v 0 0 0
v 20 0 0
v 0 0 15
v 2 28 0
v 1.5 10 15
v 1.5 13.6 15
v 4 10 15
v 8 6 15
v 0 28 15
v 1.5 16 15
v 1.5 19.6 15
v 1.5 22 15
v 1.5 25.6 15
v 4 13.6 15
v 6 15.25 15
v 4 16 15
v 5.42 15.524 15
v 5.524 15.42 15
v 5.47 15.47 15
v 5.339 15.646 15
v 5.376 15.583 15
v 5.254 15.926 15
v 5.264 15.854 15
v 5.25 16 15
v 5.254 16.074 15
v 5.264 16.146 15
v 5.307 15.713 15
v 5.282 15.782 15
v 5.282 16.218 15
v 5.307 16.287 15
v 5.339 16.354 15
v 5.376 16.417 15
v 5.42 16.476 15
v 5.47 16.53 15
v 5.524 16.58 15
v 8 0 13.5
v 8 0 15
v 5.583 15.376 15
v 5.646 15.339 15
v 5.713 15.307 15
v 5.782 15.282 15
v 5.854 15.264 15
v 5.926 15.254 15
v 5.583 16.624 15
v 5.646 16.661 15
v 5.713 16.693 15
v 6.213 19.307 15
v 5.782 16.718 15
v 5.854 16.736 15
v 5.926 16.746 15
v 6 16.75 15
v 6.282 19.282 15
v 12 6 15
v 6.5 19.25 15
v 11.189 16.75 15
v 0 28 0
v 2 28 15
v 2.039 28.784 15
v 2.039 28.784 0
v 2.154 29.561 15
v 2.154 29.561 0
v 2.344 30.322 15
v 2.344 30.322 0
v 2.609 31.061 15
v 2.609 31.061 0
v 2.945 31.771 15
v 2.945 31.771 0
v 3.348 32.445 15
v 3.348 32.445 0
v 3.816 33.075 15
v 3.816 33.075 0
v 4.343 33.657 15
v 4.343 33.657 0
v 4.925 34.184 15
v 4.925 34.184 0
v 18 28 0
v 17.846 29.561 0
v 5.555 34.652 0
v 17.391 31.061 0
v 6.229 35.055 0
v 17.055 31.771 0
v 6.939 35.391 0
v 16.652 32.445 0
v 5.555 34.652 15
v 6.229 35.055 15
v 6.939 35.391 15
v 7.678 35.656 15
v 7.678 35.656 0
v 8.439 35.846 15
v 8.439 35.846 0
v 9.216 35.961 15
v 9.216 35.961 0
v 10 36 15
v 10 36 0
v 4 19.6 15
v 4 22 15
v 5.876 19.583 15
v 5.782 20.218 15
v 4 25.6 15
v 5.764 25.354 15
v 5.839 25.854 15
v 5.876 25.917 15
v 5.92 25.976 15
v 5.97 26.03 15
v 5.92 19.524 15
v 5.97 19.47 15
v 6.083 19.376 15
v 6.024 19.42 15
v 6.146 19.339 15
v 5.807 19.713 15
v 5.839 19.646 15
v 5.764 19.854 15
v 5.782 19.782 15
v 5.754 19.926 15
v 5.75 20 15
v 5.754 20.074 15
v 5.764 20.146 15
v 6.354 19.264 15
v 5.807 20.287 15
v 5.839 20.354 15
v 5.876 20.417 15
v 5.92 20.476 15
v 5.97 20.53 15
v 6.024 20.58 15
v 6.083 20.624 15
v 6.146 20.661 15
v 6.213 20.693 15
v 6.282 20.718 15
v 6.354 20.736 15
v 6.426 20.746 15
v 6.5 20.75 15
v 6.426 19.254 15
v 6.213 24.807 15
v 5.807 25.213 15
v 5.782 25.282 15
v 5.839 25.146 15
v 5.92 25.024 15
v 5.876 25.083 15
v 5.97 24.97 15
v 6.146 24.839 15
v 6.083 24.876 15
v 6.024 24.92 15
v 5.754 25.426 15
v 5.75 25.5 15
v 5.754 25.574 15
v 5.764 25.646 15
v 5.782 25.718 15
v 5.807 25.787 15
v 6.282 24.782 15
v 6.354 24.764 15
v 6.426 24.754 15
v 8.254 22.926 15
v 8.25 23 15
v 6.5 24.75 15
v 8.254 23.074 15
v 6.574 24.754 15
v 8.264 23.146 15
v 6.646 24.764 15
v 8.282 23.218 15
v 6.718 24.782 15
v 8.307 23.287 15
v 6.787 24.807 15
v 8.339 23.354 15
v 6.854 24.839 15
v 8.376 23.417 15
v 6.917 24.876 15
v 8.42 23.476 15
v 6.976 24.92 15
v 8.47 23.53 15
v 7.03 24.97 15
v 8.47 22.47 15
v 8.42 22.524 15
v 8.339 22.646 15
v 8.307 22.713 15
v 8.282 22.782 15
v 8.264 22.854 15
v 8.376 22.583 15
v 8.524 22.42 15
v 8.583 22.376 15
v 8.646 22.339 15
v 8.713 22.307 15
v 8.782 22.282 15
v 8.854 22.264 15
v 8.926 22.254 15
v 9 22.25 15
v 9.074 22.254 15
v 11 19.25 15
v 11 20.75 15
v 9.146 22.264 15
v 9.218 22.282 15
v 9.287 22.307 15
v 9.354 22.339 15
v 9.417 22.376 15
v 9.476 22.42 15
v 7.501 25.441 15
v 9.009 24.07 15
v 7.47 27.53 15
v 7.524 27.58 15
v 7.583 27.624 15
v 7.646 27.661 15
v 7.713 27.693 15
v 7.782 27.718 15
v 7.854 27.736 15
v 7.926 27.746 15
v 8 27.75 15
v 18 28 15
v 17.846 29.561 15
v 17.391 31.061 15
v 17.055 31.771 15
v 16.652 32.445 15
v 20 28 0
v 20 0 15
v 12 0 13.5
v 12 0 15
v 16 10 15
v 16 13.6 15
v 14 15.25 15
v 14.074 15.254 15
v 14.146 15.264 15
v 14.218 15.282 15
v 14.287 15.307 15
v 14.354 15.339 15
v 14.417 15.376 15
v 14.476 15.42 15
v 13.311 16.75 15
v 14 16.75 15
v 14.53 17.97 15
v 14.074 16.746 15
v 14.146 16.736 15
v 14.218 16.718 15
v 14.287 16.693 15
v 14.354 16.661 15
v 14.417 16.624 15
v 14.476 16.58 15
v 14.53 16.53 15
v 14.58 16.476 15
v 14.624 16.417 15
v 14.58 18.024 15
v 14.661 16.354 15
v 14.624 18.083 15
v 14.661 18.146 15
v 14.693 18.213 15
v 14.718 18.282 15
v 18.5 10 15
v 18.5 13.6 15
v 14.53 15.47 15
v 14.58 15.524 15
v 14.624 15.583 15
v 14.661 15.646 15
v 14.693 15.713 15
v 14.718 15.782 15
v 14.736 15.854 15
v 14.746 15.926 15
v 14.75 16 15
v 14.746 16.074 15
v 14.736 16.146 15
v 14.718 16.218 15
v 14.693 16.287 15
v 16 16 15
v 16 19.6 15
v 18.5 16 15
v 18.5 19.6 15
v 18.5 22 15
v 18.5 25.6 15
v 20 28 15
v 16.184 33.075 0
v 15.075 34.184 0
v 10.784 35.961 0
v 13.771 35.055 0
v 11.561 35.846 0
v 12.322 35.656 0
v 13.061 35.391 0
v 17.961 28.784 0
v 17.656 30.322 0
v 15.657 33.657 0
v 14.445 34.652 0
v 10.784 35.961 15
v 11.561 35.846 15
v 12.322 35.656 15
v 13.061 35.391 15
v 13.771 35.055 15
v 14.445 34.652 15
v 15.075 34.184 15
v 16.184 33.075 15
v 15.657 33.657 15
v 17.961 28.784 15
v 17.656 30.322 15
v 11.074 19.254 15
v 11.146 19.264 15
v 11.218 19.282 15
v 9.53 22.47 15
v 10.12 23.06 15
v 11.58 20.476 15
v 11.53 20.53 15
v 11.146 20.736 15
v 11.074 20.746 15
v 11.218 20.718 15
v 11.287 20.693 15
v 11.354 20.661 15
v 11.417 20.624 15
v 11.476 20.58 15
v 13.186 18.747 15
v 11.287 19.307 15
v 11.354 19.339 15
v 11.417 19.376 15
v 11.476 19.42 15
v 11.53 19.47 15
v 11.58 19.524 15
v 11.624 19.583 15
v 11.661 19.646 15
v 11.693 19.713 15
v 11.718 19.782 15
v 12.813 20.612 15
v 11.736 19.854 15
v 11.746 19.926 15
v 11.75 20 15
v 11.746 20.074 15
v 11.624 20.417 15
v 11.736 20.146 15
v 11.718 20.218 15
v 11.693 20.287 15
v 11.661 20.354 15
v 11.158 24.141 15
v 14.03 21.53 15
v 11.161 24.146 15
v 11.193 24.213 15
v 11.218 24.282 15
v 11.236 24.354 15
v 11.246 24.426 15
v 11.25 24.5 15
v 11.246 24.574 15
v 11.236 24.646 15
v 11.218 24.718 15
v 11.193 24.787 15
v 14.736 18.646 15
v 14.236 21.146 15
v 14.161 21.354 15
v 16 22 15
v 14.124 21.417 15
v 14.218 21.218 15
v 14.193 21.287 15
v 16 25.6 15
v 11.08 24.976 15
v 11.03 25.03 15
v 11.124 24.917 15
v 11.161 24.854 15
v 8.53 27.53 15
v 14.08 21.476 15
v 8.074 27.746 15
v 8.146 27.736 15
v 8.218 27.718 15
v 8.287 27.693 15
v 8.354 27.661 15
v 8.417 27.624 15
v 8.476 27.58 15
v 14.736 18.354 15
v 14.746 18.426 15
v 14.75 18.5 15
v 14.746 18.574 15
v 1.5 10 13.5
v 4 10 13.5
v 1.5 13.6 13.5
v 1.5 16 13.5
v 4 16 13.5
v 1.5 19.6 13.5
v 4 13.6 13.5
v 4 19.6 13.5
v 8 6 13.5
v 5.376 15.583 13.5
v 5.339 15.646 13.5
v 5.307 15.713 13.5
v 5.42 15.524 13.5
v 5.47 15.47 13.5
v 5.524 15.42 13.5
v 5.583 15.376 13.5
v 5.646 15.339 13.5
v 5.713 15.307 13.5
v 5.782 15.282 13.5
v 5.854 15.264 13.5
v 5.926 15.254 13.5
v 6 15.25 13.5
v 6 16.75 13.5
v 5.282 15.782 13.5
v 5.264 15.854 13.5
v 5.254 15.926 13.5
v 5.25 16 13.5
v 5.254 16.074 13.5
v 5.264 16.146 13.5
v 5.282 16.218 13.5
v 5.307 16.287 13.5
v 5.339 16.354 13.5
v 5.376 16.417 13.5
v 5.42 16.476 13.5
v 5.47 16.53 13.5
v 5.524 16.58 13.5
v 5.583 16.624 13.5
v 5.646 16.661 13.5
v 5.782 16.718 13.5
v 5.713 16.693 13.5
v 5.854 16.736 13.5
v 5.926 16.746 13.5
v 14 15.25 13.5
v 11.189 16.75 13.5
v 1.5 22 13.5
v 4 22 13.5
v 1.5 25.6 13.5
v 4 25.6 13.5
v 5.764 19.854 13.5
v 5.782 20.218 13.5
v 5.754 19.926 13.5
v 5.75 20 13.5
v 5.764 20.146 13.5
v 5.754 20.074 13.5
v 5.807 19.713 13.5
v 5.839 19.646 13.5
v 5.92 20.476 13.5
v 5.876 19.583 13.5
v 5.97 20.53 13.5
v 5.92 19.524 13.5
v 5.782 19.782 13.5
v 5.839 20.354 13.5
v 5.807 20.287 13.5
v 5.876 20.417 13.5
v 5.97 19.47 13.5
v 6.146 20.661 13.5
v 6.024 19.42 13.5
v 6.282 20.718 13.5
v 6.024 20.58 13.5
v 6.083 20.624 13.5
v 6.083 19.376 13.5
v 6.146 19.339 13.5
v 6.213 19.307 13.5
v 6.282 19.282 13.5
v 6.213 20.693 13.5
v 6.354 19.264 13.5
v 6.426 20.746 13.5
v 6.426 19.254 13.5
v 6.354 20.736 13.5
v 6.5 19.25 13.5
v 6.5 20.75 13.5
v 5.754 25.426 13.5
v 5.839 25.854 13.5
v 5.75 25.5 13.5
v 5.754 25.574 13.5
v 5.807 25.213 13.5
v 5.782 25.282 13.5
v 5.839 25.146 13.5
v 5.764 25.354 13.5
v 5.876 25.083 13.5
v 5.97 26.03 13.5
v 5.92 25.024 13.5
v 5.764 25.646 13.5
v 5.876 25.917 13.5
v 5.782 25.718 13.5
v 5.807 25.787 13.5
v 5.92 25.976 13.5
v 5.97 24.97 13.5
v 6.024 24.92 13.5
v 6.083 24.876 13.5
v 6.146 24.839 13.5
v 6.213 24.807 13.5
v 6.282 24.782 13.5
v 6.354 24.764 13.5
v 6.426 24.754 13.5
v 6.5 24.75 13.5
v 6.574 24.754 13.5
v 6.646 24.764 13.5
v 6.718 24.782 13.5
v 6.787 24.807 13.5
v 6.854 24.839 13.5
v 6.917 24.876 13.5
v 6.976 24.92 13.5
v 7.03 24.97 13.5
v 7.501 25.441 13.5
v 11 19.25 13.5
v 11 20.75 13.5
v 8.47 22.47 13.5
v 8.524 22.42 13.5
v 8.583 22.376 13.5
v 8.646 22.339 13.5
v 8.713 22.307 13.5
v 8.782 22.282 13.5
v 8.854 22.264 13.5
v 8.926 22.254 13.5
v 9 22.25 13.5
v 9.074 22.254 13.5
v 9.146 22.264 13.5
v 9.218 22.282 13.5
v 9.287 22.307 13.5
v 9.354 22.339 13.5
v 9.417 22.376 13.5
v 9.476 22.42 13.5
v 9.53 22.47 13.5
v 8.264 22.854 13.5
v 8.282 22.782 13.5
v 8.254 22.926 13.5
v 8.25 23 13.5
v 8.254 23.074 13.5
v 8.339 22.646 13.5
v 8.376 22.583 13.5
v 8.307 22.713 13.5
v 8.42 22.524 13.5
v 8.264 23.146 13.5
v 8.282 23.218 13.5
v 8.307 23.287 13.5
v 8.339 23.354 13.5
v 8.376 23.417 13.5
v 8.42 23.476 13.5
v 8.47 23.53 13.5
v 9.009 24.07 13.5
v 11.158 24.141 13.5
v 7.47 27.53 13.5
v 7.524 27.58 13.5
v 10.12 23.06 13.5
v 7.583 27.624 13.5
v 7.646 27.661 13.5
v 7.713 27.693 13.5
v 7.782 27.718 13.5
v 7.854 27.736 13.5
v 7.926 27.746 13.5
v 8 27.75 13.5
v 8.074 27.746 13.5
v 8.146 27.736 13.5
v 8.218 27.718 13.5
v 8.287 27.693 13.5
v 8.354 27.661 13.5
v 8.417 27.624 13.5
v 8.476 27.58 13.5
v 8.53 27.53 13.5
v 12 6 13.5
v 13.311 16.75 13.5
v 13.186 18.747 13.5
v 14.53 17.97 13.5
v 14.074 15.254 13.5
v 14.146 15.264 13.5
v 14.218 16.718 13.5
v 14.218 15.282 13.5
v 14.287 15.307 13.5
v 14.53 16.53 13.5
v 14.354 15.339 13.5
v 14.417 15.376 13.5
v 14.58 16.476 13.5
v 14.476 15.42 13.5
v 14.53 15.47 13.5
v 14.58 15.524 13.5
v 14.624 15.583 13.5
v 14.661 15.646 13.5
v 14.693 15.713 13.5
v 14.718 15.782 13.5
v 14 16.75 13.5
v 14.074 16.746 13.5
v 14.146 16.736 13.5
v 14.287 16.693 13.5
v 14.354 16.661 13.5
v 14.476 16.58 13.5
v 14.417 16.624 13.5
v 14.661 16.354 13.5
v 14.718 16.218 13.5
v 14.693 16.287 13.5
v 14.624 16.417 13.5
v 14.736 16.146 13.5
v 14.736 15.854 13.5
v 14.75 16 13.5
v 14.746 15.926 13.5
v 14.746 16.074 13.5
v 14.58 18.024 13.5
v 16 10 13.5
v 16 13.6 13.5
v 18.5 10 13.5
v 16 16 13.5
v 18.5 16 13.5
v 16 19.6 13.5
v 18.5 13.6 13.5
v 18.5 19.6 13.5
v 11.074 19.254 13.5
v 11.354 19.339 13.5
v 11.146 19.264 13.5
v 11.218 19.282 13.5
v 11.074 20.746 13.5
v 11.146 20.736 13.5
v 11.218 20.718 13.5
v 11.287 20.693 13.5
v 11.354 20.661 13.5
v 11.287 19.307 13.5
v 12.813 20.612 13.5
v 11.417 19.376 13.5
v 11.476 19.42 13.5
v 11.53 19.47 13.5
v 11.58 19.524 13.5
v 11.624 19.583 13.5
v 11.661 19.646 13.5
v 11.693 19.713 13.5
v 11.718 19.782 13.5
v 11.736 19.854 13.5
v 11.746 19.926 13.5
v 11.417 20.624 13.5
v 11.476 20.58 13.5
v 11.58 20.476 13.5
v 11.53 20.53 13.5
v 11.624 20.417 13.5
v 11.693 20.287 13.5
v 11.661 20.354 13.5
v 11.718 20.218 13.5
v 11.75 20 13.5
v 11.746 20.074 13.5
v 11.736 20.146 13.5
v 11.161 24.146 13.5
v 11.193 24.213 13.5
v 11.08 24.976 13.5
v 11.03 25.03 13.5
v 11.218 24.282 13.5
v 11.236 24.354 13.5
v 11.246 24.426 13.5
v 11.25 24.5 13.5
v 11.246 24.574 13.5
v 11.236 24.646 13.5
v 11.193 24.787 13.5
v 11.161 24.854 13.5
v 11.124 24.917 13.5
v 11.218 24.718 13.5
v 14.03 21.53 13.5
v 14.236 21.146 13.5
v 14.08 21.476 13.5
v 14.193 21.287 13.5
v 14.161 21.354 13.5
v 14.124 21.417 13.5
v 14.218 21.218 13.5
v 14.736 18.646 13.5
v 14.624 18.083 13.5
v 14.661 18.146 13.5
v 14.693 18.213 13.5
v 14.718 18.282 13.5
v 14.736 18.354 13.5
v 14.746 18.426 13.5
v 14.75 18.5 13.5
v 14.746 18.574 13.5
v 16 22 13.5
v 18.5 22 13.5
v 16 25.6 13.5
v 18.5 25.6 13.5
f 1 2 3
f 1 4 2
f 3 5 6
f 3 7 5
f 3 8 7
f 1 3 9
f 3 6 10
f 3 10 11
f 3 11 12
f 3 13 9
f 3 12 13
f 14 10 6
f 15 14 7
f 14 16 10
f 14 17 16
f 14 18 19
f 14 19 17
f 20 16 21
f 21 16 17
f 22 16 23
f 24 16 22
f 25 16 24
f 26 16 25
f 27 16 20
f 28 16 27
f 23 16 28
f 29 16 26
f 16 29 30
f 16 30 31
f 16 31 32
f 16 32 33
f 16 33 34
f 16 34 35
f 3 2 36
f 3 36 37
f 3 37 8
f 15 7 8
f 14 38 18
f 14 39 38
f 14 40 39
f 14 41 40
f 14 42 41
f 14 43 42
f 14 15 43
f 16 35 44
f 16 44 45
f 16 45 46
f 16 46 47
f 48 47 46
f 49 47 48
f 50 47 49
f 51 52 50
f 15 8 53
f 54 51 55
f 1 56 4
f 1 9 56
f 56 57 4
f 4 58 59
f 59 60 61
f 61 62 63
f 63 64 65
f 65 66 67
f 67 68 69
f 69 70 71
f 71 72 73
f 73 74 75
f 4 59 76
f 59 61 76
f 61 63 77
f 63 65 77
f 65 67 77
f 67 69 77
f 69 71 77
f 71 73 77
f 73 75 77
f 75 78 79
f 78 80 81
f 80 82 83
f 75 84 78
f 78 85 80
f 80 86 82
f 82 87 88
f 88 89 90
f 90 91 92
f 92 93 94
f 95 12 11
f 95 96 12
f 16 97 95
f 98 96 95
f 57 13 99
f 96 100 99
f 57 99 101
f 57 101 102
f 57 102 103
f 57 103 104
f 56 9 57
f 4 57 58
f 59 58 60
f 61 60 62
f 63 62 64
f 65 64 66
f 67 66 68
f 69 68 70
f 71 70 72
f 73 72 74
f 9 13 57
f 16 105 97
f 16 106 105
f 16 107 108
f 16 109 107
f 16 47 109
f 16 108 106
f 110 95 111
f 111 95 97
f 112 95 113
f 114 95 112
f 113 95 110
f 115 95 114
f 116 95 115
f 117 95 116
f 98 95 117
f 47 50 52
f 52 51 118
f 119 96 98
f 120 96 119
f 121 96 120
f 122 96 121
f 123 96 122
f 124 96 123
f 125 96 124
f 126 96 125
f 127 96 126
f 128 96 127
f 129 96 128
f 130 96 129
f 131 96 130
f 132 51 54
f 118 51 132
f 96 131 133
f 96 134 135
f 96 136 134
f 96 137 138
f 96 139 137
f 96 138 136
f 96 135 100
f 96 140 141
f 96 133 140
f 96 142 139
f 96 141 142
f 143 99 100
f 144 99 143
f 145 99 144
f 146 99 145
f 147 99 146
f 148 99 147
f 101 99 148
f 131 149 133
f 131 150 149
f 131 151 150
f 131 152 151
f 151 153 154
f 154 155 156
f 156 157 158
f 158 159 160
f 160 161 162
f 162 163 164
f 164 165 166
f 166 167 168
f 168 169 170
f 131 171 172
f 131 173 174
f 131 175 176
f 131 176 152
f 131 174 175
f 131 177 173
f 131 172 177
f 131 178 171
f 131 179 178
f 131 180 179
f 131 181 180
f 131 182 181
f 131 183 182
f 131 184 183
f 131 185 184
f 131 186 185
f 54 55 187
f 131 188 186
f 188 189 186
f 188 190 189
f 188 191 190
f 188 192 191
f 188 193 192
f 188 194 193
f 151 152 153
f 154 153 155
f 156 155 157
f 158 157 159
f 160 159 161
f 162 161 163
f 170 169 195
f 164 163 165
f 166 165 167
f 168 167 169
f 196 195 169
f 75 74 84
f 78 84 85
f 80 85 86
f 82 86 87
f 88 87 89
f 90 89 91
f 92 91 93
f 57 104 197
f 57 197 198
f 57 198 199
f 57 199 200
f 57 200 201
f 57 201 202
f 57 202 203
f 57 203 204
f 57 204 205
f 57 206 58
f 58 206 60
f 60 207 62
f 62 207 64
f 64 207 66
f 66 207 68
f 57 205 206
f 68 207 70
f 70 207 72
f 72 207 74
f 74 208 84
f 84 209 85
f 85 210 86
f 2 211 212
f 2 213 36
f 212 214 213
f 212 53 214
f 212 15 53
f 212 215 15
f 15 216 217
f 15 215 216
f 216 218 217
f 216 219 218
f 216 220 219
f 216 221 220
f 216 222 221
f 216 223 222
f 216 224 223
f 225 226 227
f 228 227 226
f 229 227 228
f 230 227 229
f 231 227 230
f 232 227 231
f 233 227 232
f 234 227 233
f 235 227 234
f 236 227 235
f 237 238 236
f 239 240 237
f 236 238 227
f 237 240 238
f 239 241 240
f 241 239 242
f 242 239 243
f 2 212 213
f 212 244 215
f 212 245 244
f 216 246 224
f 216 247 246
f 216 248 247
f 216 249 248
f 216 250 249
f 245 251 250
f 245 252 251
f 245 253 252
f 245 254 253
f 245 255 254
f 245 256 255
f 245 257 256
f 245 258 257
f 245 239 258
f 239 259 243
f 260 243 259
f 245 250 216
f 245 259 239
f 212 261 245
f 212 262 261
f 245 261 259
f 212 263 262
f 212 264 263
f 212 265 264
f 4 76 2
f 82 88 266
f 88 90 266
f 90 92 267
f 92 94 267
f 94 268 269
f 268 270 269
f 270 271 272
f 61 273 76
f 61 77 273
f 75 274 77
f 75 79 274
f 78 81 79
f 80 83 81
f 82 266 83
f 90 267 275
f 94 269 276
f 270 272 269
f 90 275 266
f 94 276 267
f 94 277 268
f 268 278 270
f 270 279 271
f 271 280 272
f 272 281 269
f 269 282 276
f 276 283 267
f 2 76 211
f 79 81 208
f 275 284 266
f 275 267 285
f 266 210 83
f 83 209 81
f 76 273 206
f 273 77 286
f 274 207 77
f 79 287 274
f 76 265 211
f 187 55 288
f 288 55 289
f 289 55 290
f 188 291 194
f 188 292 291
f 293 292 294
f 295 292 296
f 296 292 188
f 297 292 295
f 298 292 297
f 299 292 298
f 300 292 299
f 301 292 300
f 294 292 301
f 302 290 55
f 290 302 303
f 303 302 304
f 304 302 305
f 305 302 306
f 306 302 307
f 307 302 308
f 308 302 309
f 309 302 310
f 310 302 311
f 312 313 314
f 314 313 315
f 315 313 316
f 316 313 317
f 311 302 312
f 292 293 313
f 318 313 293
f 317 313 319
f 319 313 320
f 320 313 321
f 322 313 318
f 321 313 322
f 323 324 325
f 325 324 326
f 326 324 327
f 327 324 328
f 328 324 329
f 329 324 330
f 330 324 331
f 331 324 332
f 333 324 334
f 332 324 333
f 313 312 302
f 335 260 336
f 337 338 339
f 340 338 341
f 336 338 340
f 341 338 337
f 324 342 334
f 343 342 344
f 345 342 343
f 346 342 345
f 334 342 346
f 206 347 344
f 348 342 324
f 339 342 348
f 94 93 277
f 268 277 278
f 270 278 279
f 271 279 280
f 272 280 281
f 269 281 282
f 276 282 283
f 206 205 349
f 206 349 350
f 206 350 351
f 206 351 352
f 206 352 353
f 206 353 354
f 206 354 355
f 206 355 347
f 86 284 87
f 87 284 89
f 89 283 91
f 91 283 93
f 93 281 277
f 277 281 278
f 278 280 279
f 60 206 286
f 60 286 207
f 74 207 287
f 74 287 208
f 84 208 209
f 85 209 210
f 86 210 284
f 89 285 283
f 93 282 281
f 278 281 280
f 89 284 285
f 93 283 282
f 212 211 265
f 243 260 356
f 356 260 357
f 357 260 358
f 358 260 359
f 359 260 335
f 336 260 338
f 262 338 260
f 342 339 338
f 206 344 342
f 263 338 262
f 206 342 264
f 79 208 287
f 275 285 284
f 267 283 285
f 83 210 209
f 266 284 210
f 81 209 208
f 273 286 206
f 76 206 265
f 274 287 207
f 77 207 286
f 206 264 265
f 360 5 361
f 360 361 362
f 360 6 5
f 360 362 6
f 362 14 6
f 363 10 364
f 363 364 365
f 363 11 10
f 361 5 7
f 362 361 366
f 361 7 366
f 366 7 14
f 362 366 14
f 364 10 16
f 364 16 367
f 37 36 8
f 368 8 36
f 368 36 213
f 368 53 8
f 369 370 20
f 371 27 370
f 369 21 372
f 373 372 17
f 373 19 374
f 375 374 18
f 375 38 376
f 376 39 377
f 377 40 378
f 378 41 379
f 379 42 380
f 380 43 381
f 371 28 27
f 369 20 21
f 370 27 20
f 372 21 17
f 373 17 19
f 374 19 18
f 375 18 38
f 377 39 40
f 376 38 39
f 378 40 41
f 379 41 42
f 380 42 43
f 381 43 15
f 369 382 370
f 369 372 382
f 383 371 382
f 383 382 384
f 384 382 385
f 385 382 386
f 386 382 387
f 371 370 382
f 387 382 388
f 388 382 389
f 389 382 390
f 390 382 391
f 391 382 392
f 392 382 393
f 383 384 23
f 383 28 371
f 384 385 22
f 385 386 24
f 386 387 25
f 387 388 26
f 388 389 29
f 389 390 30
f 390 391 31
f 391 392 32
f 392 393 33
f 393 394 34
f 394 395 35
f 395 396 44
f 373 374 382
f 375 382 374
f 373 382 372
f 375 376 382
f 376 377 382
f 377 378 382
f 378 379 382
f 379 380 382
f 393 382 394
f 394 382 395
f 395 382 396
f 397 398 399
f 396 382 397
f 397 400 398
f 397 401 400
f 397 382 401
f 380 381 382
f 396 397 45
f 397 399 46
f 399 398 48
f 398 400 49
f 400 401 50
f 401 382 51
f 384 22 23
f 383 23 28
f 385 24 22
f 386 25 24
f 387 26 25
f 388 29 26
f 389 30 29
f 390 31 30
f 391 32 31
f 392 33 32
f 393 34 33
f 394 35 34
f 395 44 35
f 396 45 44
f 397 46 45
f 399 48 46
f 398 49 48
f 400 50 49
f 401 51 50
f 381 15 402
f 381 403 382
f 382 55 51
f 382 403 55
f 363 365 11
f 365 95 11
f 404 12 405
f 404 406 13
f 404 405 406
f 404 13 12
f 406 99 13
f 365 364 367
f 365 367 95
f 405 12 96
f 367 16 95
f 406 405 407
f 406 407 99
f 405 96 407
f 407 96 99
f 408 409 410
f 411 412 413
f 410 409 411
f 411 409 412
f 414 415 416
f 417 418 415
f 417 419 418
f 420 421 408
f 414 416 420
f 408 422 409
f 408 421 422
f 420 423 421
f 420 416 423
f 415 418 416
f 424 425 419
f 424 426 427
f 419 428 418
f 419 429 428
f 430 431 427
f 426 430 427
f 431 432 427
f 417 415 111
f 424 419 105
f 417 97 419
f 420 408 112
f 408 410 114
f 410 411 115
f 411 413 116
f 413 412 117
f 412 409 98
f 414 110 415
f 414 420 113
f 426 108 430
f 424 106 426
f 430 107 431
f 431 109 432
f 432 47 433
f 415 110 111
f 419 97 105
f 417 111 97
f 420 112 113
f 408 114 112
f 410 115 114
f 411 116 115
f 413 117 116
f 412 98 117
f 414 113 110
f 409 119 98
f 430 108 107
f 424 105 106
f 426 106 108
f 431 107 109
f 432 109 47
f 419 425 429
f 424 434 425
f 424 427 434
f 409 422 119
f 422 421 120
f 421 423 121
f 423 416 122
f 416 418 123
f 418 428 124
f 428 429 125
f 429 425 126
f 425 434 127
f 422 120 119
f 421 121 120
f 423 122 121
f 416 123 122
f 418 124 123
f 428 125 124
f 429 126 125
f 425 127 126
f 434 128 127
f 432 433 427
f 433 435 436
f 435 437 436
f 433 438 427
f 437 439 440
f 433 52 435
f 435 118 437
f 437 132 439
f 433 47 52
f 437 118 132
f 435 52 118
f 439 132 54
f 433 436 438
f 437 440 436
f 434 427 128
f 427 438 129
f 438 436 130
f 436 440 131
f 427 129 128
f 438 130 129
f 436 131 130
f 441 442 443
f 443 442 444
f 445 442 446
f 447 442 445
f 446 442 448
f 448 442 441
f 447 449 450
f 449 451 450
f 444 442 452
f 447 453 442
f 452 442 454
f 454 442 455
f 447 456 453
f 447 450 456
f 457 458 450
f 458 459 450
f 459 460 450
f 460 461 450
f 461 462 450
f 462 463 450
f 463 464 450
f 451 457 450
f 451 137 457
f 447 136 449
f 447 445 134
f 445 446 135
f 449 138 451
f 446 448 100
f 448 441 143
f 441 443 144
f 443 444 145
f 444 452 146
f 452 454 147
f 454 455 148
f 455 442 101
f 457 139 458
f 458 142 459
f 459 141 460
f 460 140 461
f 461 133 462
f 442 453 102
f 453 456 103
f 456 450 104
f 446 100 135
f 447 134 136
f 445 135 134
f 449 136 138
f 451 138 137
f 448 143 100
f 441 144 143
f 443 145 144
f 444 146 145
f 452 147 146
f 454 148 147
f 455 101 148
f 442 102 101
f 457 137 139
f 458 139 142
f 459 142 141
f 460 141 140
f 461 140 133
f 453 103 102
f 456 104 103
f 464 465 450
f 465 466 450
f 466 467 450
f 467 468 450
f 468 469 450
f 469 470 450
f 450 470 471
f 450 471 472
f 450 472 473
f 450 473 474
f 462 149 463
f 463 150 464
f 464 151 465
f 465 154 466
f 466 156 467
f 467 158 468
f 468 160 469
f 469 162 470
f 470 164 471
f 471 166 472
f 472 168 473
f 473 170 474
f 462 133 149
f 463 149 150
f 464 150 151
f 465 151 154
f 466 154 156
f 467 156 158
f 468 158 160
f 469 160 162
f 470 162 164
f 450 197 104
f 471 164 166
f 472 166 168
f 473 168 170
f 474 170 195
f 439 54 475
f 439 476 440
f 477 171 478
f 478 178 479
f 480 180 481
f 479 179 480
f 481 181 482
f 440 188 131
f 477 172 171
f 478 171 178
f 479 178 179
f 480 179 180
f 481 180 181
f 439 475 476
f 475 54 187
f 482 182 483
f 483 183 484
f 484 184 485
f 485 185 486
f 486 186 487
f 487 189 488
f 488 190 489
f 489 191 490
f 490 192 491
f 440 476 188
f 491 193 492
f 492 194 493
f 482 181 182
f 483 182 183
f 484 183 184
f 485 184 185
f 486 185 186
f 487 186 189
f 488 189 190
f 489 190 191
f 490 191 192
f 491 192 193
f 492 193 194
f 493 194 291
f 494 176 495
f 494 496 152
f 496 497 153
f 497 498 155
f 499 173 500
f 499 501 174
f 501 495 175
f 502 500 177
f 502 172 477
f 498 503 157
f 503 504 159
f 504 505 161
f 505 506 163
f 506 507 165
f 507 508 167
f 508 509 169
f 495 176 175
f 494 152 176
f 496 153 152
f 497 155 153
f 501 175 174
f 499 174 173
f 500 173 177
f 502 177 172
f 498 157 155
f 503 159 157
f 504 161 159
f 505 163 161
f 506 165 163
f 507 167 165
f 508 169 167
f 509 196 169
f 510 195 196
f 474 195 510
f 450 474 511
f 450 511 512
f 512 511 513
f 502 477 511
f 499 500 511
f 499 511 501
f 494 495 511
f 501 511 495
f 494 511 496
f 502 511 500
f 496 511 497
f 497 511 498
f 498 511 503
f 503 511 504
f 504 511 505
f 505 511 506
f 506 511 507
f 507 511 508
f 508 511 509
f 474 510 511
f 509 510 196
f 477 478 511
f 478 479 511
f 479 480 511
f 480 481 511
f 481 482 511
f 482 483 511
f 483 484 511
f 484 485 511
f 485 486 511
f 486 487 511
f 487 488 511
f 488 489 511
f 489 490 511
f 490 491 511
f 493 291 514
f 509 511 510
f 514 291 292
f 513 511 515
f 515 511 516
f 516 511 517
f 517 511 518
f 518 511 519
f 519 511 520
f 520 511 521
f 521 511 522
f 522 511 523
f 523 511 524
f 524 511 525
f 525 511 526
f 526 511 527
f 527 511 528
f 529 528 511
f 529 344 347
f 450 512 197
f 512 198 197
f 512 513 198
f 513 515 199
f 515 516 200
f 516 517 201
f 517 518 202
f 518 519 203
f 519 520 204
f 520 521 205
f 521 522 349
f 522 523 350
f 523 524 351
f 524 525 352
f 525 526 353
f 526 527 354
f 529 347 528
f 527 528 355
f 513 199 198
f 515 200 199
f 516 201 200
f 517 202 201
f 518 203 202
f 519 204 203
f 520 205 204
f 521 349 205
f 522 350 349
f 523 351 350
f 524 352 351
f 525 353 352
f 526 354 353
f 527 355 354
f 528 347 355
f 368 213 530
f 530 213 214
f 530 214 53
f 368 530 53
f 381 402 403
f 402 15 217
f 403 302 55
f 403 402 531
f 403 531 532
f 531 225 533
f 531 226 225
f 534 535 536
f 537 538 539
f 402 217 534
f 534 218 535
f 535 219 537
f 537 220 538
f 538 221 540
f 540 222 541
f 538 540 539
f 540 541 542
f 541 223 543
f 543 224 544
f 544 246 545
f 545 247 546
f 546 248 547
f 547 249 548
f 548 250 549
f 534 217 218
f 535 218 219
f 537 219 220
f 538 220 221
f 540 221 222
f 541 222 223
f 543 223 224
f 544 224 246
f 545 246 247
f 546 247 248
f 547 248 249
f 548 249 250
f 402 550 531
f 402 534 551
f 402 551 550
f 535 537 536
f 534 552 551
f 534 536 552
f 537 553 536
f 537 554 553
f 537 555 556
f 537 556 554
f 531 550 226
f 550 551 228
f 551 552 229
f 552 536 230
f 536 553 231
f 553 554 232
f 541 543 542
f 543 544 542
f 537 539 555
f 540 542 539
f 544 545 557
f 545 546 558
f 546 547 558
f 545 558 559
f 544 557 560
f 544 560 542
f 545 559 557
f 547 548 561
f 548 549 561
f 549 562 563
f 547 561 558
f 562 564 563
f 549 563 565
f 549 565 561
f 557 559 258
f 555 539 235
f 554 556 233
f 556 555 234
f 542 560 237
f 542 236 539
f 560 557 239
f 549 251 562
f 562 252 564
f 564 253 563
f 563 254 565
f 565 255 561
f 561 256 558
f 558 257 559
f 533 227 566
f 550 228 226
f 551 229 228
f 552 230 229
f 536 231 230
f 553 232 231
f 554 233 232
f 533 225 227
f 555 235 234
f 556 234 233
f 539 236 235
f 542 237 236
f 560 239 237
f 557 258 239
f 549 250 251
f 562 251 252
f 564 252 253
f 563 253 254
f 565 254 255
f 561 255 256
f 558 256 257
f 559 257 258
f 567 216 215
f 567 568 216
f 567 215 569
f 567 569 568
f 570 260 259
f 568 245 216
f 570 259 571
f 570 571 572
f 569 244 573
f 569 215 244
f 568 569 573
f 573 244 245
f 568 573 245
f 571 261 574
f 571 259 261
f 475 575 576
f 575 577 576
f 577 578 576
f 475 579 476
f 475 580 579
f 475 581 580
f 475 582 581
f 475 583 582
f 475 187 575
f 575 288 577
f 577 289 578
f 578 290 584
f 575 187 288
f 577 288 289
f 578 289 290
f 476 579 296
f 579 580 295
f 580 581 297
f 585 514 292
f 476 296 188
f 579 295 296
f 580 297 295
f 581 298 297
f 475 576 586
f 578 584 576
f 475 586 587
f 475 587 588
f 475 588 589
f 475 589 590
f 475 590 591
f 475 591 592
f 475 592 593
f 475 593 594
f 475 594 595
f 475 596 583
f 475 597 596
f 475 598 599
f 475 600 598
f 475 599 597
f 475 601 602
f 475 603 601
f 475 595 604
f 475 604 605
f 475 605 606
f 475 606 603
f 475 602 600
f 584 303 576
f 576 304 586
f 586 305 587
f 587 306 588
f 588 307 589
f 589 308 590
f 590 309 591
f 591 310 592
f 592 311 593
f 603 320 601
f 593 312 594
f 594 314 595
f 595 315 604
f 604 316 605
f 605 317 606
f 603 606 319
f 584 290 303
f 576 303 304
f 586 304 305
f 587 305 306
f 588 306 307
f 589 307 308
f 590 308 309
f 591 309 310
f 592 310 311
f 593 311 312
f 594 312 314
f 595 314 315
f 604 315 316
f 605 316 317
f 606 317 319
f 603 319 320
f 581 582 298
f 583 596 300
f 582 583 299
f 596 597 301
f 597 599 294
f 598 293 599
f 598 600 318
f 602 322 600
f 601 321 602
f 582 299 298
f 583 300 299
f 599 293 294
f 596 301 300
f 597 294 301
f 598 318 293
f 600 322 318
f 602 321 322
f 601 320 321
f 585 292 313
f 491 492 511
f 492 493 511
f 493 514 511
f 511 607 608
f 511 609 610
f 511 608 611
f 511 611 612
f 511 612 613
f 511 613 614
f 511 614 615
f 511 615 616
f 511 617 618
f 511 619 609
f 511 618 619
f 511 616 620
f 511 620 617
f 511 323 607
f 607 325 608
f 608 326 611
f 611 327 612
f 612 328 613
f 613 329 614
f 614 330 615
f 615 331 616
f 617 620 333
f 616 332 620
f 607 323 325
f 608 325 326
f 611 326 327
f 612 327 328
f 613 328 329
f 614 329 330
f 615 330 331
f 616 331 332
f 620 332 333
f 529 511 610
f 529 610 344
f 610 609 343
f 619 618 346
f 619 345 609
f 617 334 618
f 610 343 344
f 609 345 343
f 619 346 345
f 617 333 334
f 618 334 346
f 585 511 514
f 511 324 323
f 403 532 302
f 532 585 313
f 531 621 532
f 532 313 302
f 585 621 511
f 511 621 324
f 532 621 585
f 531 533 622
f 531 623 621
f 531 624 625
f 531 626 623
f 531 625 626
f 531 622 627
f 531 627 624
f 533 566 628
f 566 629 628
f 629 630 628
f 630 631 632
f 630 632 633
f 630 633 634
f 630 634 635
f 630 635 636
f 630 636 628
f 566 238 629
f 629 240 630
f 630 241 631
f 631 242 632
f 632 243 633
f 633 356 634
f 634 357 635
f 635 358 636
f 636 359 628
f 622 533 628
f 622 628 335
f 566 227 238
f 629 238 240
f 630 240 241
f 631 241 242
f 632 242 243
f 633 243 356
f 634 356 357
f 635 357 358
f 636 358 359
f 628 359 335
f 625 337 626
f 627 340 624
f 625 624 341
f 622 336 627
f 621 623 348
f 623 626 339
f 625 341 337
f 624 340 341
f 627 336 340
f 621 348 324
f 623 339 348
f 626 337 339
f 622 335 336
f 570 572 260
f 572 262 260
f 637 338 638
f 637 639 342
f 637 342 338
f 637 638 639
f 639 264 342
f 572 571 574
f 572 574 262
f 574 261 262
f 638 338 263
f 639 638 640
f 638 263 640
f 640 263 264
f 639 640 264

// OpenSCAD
// Facade game piece in mm: X width, Y height, Z depth.
// Place Z=0 flat on the build plate; all recessed details are 1.5 mm deep.
$fn=64;
module rect(x,y,w,h){translate([x,y]) square([w,h]);}
module disk(x,y,r){translate([x,y]) circle(r=r);}
module line(a,b,w=1.5){hull(){translate(a) circle(d=w);translate(b) circle(d=w);}}
module path(points,w=1.5){for(i=[0:len(points)-2]) line(points[i],points[i+1],w);}
module cross_icon(x,y,size=6,bar=1.8){union(){rect(x-size/2,y-bar/2,size,bar);rect(x-bar/2,y-size/2,bar,size);}}
module tank(x,y,w,h){union(){rect(x,y,w,h-w/2);disk(x+w/2,y+h-w/2,w/2);}}
module ring(x,y,r,w=1.3){difference(){disk(x,y,r);disk(x,y,r-w);}}

module silhouette(){
union(){rect(0,0,20,28);disk(10,28,8);}
}
module facade_recesses(){union(){
path([[6,16],[14,16]],1.5);
path([[11.5,16],[14,18.5],[13.5,21],[8,26]],1.5);
path([[6.5,25.5],[8,27],[10.5,24.5],[9,23]],1.5);
line([6.5,20],[11,20],1.5);
for(x=[1.5,16]) for(y=[10,16,22]) rect(x,y,2.5,3.6);
rect(8,0,4,6);
}}
difference(){
 linear_extrude(height=15) silhouette();
 translate([0,0,13.5]) linear_extrude(height=2) facade_recesses();
}
